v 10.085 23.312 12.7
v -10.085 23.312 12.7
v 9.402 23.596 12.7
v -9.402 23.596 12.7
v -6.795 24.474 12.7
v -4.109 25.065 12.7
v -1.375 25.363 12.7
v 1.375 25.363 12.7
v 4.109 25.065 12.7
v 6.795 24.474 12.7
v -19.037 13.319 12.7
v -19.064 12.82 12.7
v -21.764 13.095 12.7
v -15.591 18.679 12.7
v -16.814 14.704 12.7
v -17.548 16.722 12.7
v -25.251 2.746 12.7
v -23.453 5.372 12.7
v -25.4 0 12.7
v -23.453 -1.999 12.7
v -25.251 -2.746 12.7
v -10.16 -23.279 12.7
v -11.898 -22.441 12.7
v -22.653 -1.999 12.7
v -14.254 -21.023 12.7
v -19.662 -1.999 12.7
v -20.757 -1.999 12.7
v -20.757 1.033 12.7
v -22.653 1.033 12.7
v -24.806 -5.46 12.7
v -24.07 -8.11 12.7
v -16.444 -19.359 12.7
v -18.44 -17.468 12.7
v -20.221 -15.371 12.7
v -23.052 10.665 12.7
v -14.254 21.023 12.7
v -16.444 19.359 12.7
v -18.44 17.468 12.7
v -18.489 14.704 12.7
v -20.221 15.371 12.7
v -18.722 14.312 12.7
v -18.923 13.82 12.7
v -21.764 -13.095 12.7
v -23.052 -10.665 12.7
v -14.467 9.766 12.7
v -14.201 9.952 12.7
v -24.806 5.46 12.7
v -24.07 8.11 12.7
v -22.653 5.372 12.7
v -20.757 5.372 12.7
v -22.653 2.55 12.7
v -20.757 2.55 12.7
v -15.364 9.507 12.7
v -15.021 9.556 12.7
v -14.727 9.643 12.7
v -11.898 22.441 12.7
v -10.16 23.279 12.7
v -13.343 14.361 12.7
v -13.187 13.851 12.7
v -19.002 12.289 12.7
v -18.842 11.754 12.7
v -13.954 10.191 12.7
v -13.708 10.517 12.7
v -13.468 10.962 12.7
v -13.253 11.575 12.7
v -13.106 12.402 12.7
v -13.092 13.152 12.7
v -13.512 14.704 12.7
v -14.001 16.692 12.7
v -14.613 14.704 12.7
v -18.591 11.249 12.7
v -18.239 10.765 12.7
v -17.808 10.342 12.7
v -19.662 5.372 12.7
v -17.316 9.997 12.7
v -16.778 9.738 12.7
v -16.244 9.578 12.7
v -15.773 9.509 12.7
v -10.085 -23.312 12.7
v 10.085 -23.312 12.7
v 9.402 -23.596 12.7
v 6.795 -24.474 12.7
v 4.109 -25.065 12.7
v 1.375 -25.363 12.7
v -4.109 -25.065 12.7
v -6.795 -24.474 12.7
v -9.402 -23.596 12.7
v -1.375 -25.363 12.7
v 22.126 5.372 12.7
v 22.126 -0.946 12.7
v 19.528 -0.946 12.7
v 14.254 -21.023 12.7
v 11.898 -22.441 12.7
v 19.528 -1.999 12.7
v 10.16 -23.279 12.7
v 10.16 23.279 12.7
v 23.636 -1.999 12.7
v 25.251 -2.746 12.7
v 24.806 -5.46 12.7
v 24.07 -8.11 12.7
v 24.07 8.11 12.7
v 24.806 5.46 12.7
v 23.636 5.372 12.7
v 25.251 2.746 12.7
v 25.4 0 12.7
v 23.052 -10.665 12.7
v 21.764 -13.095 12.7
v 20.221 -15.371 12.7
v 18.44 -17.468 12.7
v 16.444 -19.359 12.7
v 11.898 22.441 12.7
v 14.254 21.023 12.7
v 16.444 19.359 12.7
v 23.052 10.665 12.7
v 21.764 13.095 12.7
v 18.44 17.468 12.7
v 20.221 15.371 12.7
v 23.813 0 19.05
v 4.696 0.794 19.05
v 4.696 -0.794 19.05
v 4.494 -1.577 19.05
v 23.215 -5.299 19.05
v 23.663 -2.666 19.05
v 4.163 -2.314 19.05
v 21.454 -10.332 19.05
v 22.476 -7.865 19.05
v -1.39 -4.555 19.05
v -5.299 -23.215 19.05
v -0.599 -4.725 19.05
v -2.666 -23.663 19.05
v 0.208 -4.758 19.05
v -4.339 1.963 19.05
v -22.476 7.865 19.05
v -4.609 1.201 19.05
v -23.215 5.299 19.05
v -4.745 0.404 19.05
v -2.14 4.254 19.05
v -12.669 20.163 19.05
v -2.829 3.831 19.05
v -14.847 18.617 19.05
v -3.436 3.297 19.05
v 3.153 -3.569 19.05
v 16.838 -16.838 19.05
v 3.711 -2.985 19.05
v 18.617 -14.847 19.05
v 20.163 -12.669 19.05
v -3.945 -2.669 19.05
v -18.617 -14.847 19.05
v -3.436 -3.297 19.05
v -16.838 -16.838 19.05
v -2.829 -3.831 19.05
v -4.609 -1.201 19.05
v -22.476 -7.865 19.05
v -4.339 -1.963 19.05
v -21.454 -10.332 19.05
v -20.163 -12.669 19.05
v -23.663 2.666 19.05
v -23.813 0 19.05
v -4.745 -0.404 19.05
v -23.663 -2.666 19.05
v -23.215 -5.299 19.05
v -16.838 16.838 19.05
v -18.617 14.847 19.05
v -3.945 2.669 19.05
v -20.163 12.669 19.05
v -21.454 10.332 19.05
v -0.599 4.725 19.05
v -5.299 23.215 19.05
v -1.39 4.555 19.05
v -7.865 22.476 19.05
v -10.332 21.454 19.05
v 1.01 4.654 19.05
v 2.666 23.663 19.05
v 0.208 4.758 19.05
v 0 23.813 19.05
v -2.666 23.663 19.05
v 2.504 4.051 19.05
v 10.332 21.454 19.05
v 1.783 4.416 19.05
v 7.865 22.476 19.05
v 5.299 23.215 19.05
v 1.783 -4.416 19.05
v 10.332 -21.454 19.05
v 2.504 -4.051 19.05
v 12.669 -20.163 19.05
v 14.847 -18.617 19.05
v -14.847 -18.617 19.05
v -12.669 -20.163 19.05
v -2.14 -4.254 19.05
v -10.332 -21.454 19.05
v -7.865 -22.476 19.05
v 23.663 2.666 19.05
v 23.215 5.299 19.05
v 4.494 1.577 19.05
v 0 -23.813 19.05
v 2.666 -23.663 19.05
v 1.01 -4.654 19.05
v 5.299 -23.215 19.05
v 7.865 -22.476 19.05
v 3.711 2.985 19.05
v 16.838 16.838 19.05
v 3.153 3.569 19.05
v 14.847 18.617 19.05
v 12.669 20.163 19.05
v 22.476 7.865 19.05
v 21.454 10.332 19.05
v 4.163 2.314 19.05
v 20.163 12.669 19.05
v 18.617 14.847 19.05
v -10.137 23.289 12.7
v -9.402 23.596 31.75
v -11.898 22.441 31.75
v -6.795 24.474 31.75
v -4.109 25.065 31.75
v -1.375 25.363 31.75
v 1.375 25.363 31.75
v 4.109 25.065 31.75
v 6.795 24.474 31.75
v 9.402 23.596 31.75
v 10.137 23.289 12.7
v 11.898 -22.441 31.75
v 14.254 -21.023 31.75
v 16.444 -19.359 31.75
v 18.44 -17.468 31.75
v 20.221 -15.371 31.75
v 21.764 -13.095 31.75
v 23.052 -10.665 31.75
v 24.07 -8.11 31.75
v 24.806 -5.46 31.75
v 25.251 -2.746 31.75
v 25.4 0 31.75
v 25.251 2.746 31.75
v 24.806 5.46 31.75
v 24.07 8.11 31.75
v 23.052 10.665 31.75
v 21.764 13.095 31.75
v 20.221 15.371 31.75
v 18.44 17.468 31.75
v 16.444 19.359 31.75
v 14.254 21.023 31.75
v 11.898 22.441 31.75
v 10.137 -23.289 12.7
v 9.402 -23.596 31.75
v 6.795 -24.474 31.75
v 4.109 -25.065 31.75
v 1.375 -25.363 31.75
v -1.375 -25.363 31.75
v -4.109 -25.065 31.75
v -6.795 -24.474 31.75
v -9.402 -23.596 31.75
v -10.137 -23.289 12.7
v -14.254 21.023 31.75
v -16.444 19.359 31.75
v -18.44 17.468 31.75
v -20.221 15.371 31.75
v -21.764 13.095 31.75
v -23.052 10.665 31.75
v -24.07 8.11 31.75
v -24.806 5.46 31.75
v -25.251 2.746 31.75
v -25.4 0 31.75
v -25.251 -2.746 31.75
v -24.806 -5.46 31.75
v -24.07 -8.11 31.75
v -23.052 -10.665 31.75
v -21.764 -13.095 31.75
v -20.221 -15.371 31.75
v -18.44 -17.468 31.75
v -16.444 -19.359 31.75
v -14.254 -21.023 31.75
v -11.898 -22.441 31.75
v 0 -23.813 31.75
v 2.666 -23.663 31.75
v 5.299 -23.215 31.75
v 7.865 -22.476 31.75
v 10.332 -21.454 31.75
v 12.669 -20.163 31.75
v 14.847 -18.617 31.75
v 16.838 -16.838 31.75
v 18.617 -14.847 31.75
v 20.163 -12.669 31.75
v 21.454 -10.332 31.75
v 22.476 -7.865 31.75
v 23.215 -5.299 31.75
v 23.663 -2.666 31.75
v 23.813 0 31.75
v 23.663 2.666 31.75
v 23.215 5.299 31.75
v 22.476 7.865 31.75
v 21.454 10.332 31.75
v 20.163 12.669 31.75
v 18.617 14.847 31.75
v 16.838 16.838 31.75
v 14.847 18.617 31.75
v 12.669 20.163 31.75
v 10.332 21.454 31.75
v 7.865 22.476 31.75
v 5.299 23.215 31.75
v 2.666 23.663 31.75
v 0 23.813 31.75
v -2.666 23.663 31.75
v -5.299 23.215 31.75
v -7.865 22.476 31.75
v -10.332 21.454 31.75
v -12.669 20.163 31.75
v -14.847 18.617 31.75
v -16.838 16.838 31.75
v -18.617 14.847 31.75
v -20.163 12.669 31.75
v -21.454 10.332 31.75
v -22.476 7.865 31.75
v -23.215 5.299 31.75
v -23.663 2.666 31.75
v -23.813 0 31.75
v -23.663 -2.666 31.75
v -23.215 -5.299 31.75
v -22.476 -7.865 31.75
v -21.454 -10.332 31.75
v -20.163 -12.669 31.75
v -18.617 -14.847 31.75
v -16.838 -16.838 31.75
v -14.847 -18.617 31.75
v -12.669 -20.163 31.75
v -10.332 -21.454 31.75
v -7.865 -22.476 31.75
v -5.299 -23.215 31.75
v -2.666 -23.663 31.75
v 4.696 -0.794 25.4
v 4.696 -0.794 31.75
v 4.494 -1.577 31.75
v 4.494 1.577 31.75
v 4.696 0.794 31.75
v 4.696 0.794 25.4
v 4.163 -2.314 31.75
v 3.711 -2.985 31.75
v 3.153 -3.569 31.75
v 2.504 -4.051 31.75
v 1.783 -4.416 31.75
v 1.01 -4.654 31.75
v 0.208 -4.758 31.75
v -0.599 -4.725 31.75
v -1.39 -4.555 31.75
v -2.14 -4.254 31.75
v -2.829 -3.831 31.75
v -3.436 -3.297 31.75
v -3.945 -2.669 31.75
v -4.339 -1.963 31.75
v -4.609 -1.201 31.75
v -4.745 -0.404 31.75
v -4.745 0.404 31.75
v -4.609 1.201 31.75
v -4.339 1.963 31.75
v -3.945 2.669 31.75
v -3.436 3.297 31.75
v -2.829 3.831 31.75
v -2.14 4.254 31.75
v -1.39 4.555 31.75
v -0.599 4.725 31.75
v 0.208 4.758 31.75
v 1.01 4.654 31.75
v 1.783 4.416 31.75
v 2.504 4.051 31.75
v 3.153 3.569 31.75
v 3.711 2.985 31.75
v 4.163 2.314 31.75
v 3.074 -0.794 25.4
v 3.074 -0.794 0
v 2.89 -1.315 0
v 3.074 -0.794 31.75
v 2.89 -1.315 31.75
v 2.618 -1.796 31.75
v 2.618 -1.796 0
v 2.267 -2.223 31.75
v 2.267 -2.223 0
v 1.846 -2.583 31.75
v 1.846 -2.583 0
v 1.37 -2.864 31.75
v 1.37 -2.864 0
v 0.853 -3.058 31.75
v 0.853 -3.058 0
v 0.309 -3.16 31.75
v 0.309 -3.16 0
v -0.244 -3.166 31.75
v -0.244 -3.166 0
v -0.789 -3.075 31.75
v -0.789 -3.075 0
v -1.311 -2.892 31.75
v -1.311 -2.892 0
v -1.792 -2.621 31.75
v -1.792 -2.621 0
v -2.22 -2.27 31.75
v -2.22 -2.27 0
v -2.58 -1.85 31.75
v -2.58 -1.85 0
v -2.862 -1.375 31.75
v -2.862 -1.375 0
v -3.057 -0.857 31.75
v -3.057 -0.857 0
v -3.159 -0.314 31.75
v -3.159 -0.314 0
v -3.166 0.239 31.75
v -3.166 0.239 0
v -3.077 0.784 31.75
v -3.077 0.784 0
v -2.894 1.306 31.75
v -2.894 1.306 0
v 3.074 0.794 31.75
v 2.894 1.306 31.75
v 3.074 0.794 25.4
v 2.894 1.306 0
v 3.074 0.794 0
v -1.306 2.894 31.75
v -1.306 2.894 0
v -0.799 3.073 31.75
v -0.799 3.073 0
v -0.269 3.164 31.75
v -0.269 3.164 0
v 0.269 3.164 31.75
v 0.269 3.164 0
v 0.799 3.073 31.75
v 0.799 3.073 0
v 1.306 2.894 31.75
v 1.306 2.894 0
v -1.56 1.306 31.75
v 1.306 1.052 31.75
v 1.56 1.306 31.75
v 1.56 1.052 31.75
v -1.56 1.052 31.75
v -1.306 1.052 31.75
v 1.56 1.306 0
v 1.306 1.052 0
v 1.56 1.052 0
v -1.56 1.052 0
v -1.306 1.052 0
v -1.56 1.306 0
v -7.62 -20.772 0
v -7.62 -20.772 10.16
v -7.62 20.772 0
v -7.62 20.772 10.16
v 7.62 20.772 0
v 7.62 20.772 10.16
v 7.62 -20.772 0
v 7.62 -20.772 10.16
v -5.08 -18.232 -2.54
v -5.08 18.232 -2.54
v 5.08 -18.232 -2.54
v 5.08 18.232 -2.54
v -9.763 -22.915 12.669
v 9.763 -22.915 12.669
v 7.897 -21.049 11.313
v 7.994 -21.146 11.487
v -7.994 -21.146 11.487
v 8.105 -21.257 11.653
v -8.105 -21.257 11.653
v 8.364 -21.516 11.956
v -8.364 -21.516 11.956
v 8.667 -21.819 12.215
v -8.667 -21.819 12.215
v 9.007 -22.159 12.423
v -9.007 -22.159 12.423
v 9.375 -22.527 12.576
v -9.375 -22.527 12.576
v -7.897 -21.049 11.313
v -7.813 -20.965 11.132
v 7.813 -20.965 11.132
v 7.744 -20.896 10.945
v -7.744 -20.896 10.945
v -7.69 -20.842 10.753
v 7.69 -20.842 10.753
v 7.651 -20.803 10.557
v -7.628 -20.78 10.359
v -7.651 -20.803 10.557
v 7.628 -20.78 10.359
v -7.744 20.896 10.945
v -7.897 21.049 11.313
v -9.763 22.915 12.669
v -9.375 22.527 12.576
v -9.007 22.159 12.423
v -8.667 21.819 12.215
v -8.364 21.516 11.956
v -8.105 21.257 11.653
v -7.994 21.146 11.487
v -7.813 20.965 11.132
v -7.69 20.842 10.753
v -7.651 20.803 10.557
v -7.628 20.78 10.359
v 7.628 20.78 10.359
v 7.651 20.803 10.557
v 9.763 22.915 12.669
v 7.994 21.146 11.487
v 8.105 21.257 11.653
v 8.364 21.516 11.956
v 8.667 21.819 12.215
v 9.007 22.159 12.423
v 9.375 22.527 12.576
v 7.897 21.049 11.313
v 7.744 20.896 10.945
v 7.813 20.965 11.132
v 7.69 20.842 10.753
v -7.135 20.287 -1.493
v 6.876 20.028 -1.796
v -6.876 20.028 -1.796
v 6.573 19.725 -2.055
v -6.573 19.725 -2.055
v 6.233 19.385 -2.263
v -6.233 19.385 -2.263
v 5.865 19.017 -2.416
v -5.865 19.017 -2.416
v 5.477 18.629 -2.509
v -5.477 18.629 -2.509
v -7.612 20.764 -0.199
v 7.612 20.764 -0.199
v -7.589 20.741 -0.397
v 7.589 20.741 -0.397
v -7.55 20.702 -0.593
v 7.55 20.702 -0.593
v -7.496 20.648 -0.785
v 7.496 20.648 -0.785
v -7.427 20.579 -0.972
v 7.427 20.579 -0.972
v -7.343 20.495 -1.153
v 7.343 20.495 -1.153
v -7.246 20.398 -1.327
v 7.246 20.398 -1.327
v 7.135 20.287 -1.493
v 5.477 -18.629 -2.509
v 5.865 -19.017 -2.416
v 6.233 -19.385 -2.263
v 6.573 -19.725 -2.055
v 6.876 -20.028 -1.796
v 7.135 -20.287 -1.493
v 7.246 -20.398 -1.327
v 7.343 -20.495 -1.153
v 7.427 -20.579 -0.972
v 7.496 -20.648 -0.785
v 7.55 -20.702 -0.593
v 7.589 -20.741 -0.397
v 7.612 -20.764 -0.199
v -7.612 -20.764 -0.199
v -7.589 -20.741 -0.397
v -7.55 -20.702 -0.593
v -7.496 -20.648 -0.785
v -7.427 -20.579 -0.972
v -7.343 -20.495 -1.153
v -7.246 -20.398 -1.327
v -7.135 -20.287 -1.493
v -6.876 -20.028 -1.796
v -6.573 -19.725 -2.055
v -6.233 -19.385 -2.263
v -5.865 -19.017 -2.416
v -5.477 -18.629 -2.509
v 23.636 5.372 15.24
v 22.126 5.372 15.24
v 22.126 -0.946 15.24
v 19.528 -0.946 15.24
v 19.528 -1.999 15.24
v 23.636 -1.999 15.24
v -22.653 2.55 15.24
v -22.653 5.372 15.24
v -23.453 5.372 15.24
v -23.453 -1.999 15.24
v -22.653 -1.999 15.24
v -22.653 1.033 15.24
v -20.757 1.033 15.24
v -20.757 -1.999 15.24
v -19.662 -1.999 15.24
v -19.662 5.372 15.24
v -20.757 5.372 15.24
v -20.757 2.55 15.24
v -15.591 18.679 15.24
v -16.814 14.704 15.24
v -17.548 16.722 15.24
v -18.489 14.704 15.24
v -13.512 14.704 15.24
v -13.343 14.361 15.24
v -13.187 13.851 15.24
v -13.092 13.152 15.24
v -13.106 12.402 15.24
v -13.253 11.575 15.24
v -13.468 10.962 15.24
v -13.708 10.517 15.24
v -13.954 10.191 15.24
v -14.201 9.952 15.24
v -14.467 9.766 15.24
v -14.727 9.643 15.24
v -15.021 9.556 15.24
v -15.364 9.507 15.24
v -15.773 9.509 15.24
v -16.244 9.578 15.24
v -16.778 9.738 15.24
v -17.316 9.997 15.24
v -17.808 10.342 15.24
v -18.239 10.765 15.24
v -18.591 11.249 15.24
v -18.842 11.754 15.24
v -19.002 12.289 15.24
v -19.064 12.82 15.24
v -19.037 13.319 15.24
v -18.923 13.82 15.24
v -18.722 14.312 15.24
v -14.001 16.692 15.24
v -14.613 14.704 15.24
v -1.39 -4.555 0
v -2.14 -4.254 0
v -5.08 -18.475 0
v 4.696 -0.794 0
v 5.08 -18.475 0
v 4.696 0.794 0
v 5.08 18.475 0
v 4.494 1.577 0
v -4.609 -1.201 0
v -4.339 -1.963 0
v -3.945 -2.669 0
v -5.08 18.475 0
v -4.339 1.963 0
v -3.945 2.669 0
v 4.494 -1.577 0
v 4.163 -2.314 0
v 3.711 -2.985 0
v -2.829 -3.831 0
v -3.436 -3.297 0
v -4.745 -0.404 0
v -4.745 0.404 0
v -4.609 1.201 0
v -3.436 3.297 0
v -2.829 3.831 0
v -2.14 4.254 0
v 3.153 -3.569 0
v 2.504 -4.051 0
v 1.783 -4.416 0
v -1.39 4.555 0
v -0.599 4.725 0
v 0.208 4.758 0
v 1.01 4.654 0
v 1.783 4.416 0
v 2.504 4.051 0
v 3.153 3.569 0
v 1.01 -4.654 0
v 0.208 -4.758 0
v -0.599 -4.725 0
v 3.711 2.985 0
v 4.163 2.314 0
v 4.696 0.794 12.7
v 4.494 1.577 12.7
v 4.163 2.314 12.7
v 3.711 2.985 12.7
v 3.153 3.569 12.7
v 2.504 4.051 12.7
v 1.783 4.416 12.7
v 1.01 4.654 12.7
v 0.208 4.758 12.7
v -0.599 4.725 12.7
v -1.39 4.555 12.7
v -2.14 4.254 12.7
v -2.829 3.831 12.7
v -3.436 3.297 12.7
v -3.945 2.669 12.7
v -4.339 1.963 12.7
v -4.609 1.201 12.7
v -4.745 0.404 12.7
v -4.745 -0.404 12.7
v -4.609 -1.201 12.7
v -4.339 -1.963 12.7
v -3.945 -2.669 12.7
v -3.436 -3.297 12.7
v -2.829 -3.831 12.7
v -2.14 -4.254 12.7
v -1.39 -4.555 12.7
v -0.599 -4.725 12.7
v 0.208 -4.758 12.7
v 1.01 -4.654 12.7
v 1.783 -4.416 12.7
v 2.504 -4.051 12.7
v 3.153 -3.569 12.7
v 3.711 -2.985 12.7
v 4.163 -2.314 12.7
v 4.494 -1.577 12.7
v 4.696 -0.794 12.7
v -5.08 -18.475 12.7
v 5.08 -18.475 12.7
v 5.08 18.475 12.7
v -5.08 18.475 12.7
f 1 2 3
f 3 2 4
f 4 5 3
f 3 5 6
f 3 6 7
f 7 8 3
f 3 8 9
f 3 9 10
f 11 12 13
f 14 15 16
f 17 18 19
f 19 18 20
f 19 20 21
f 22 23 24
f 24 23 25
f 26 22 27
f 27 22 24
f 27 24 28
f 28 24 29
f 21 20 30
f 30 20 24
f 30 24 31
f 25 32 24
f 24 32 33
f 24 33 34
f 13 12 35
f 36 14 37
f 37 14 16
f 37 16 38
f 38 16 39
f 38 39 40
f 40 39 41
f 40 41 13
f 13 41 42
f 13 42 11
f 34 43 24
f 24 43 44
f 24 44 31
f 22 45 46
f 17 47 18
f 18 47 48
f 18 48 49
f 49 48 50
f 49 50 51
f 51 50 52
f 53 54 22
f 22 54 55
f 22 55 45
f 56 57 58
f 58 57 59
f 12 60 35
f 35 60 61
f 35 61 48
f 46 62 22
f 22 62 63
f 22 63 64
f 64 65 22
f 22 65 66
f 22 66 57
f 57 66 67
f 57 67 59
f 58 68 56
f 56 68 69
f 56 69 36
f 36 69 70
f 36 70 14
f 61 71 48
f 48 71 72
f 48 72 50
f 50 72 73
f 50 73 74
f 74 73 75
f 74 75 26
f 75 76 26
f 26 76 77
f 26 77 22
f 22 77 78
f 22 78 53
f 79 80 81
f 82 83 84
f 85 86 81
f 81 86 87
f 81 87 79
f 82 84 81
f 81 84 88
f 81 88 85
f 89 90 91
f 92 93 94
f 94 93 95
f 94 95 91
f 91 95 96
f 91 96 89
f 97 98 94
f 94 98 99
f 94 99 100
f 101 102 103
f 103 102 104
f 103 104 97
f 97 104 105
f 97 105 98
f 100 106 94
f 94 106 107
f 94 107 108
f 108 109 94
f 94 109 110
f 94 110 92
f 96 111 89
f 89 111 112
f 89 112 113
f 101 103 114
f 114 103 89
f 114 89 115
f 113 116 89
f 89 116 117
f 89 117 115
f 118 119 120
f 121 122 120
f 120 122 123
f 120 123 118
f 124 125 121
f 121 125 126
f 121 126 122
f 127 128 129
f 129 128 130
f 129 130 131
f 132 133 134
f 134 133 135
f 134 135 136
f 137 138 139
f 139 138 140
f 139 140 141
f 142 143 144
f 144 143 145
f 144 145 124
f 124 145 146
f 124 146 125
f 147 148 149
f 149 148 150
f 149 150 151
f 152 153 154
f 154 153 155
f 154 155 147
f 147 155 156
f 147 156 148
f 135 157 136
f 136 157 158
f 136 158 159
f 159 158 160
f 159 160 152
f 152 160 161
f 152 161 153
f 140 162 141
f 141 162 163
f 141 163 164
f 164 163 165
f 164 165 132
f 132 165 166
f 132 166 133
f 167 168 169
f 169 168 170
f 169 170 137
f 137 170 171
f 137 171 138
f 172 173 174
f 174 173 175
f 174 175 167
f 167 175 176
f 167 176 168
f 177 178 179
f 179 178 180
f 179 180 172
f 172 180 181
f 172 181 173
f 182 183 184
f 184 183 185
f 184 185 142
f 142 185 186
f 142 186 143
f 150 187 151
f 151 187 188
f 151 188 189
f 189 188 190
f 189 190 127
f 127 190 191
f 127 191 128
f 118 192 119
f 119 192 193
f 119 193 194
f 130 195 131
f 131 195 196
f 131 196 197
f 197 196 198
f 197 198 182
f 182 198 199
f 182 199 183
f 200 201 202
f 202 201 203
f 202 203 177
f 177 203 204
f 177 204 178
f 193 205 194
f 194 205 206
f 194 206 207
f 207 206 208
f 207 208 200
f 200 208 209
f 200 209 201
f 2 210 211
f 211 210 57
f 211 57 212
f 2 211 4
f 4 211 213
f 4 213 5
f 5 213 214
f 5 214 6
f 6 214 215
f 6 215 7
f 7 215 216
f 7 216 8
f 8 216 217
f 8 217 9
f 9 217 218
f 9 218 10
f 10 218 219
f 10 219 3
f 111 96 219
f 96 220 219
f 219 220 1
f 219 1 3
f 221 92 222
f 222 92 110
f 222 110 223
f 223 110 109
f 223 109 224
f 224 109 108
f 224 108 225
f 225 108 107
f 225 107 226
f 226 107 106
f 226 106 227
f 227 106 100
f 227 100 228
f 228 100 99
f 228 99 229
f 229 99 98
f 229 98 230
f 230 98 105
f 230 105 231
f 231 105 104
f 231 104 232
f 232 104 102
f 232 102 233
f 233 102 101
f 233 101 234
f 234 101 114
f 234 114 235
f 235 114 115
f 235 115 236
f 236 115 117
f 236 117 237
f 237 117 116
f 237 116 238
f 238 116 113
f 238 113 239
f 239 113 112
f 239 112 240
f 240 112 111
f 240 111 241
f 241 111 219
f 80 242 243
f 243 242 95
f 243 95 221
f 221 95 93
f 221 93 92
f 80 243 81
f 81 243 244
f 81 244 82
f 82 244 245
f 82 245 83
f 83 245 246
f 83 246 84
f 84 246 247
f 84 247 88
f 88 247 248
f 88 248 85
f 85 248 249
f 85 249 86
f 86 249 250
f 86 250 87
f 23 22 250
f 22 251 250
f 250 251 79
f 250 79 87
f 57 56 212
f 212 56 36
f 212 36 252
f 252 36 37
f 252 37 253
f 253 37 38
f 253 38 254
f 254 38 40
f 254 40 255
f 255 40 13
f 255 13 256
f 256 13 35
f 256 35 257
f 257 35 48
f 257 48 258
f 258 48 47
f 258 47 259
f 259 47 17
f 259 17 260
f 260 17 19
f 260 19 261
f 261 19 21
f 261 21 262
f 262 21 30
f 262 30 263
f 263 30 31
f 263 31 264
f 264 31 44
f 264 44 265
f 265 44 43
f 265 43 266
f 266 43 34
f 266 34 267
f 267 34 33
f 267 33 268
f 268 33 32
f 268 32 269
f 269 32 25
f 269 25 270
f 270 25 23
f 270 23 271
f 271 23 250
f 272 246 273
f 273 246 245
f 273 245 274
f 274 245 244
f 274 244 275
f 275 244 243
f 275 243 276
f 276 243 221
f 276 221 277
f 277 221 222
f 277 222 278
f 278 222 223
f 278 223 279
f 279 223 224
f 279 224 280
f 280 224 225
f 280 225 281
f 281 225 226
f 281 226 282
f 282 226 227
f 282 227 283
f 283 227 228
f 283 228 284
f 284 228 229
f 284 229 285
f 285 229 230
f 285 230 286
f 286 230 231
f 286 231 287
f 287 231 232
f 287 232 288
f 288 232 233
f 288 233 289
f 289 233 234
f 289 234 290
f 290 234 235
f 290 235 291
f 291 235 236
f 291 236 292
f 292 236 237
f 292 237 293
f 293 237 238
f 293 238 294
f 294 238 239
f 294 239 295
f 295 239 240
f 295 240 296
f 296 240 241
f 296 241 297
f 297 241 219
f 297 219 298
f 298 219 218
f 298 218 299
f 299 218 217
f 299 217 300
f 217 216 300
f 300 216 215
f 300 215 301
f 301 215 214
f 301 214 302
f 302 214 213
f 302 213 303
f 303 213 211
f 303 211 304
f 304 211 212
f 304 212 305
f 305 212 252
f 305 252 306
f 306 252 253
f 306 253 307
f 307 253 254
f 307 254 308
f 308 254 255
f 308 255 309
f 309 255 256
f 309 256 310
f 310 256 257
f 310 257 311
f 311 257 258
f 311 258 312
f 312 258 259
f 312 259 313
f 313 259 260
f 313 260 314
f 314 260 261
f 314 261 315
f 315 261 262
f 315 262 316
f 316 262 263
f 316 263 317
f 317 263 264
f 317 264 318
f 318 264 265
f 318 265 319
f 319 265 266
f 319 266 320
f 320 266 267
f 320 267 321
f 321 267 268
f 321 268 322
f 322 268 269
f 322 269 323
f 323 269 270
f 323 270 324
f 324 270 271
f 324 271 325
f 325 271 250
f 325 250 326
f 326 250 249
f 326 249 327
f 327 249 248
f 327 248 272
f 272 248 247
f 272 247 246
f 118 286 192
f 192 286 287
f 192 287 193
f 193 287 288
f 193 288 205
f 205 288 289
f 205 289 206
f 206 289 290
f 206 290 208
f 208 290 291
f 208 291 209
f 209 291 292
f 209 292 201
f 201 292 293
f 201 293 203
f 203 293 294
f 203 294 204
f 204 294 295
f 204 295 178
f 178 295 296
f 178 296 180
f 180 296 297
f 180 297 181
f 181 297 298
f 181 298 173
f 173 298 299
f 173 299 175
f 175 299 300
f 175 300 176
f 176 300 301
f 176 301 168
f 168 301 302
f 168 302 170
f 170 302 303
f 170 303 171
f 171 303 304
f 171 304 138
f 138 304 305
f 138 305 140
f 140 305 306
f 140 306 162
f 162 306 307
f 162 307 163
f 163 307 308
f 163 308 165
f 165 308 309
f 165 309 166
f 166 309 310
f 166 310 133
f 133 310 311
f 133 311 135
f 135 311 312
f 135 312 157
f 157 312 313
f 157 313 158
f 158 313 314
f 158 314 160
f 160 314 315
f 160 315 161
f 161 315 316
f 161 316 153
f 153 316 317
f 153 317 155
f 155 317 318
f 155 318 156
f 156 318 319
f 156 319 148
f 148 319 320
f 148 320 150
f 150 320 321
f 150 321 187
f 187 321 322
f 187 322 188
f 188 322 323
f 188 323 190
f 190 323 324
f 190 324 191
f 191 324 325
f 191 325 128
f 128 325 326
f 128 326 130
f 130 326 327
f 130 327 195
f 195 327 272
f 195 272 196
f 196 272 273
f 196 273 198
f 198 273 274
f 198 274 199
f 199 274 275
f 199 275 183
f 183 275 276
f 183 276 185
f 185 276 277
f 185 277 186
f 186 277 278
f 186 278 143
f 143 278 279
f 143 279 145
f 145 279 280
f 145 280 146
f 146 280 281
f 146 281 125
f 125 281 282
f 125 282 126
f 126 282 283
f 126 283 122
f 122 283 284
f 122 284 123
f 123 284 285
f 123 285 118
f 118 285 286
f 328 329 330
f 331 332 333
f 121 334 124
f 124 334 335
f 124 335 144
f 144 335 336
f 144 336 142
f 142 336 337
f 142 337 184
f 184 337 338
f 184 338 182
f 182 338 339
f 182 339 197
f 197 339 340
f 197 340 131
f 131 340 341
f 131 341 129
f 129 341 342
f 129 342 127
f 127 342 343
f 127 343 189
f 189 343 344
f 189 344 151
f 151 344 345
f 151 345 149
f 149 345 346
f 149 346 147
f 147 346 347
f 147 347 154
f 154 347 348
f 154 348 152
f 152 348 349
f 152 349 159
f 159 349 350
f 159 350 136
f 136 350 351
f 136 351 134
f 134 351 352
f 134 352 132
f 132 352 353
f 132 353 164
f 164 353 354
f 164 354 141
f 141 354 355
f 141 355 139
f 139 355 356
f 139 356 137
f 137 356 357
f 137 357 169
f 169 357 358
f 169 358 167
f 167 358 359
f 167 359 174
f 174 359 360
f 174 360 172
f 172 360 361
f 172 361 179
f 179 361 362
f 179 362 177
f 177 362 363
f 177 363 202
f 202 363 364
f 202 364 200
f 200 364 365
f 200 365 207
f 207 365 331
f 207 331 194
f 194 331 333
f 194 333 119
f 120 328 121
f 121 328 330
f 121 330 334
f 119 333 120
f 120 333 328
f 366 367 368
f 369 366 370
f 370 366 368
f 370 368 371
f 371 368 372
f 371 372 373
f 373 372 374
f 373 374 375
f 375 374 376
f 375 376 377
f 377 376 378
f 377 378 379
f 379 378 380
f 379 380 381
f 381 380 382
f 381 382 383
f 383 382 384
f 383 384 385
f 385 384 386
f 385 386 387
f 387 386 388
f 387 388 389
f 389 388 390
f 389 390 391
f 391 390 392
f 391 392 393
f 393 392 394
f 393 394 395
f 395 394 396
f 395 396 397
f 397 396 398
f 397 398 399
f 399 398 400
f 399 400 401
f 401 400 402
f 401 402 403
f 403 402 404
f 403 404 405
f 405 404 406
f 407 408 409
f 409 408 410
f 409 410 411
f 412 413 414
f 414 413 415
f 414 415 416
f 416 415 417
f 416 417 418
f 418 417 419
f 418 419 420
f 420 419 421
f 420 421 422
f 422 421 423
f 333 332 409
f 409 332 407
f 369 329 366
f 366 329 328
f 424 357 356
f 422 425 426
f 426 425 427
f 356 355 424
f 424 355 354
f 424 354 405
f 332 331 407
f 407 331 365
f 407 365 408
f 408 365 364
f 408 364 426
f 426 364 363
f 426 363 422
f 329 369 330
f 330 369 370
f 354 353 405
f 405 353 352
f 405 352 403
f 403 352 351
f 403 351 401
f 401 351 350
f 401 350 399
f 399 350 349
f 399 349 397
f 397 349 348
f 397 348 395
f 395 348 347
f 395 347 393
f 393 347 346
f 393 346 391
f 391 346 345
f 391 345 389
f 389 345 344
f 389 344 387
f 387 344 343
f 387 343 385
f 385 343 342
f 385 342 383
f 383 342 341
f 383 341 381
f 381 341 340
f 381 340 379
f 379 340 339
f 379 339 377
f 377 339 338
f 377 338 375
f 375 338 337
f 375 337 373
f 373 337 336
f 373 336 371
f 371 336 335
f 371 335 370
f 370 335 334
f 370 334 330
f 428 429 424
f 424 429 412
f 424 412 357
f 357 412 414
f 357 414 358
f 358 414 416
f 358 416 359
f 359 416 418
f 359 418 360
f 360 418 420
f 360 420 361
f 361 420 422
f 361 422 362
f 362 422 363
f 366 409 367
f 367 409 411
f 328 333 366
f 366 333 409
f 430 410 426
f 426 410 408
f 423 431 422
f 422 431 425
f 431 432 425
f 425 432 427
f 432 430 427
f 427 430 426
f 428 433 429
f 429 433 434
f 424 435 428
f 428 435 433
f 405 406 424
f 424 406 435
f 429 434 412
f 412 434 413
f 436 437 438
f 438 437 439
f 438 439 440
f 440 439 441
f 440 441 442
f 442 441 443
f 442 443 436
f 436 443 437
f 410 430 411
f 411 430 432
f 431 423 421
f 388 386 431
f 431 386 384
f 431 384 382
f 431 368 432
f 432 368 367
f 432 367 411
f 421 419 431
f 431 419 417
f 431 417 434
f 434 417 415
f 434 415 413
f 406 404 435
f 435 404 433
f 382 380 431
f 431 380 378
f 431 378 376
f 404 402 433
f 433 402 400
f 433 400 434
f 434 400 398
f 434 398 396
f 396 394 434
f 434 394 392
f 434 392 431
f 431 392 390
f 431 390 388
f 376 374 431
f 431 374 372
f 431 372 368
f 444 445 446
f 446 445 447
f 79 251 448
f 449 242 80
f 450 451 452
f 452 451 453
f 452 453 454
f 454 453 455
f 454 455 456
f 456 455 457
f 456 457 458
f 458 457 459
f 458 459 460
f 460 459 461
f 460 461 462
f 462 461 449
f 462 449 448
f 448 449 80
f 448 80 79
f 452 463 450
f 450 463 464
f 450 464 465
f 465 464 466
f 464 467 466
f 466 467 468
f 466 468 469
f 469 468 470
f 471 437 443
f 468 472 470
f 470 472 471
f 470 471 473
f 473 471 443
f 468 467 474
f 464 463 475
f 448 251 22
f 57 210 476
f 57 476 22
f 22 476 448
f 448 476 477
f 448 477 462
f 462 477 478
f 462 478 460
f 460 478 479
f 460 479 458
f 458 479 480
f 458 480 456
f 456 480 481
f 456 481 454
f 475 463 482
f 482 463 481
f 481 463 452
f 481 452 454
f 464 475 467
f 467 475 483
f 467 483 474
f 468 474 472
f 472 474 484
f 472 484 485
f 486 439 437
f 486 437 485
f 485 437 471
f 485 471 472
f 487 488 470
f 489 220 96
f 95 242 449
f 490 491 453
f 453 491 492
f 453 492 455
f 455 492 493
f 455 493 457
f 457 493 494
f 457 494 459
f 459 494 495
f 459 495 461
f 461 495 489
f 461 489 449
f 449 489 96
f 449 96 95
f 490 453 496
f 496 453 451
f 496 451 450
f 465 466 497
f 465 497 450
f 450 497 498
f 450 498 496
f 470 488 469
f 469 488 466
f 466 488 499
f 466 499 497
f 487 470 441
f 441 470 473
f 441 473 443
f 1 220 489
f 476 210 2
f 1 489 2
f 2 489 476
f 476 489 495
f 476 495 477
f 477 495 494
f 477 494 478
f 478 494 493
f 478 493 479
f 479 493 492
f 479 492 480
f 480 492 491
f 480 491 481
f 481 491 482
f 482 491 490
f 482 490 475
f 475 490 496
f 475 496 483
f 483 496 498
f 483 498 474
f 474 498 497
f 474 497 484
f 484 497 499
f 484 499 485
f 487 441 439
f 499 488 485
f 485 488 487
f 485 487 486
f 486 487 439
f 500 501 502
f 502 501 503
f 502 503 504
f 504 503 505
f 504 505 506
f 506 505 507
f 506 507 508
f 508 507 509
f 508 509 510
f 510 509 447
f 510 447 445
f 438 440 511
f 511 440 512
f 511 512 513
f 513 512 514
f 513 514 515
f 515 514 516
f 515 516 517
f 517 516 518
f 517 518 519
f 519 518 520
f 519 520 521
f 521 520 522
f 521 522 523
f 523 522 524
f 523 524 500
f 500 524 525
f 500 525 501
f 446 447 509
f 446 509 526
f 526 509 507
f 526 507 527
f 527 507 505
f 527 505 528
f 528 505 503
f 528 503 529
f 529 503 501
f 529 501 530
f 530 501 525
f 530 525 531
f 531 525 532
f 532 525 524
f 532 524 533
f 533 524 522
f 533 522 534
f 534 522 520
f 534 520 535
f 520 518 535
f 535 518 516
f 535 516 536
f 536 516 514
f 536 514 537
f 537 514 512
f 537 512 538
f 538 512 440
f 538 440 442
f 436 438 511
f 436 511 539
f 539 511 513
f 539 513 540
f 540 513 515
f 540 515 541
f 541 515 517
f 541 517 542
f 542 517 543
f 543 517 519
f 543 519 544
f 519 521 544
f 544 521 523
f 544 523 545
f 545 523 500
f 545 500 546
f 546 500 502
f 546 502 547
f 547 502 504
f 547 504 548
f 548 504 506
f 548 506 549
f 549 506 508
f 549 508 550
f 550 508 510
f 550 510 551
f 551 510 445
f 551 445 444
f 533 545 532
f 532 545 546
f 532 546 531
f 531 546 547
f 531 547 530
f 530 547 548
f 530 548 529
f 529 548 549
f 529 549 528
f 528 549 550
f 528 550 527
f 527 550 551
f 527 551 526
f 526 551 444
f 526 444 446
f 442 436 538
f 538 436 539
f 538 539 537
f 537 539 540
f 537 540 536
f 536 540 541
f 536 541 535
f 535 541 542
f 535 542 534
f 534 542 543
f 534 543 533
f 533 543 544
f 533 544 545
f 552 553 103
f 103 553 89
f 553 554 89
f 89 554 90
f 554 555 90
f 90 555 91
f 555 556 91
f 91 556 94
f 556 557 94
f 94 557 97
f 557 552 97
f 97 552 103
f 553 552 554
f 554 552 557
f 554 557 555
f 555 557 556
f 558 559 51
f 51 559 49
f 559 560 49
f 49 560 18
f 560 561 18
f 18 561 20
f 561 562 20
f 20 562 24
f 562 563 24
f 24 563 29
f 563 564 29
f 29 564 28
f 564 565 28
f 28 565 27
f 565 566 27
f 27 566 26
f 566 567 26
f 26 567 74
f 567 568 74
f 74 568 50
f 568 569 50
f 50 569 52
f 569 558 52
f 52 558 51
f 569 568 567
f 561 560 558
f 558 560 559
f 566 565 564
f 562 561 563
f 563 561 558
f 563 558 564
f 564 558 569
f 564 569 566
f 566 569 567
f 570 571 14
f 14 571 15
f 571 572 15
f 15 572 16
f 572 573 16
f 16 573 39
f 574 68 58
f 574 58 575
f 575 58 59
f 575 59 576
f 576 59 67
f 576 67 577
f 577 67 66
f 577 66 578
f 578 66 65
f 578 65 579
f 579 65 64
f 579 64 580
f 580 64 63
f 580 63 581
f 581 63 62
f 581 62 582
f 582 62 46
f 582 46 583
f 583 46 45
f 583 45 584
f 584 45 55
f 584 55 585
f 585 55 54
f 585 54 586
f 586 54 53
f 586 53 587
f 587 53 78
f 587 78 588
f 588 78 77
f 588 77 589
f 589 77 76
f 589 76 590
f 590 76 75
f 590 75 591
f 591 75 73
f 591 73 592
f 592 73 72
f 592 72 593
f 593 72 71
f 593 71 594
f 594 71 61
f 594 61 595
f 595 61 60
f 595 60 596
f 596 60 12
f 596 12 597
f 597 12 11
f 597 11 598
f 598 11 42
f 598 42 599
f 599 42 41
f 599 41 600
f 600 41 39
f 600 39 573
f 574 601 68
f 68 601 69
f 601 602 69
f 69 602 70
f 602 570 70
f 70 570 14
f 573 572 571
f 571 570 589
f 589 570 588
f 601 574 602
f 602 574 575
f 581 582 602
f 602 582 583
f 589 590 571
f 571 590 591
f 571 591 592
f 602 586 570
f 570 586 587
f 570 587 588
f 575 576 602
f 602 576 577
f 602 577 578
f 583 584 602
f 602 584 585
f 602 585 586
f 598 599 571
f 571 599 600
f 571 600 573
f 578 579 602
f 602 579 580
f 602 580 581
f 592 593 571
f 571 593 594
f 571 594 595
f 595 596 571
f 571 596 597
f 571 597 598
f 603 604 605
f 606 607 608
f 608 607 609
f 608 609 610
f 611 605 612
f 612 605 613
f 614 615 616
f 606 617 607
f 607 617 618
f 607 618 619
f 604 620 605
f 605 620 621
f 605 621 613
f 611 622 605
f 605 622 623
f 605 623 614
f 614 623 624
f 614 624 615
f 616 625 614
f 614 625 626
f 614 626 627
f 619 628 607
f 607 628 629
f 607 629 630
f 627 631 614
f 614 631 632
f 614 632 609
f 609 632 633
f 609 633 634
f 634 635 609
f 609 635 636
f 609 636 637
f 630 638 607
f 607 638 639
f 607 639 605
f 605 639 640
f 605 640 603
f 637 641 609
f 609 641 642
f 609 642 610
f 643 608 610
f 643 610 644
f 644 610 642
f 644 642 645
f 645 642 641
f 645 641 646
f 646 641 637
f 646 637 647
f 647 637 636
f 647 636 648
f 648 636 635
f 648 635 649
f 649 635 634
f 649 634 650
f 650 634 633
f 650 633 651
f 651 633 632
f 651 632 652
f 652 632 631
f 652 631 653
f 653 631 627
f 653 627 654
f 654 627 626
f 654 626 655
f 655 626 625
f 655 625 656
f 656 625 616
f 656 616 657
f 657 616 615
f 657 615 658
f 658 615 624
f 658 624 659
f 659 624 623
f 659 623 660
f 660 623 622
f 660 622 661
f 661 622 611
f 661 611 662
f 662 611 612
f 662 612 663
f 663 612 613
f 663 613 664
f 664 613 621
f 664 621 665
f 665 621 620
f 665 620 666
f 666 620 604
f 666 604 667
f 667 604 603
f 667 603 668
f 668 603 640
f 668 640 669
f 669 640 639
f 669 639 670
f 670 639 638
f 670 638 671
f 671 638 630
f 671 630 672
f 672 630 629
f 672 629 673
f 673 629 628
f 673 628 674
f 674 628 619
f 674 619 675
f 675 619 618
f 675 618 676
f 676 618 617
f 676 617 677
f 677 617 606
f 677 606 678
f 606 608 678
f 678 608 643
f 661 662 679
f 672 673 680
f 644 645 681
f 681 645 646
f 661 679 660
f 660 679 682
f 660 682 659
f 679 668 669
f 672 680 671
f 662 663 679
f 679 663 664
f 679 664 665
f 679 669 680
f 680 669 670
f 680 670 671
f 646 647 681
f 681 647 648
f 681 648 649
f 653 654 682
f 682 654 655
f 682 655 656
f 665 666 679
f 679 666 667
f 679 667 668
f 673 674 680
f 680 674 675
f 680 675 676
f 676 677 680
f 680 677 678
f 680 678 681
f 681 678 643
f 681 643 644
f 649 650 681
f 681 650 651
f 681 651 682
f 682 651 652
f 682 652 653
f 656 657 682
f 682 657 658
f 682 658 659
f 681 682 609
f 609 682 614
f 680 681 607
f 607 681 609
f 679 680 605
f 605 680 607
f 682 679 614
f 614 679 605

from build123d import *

# Parameters (mm, degrees)
BOSS_EXTRUDE1_DEPTH = 31.75
SKETCH4_R           = 25.4
SKETCH4_R_2         = 23.8125
BOSS_EXTRUDE3_DEPTH = 12.7
SKETCH5_W           = 1.621707797
SKETCH5_H           = 1.5875
BOSS_EXTRUDE4_DEPTH = 25.4
SKETCH6_W           = 0.254
SKETCH6_H           = 0.254
BOSS_EXTRUDE5_DEPTH = 31.75
SKETCH9_R           = 25.4
SKETCH9_R_2         = 4.593847271
BOSS_EXTRUDE6_DEPTH = 6.35
SKETCH10_W          = 15.24
SKETCH10_H          = 41.544062962
SKETCH10_W_2        = 10.16
SKETCH10_H_2        = 36.95031579
BOSS_EXTRUDE7_DEPTH = 12.7
SKETCH11_W          = 15.24
SKETCH11_H          = 41.544062962
BOSS_EXTRUDE8_DEPTH = 2.54
FILLET1_R           = 2.54
FILLET2_R           = 2.54
CUT_EXTRUDE1_DEPTH  = 2.54


with BuildPart() as part:
    # Sketch2 → Boss-Extrude1 (new body)
    with BuildSketch(Plane.XY):
        with BuildLine():
            ThreePointArc((3.074180531, 0.79375), (-3.175, 0), (3.074180531, -0.79375))
            Line((3.074180531, -0.79375), (4.695888328, -0.79375))
            ThreePointArc((4.695888328, -0.79375), (-4.7625, 0), (4.695888328, 0.79375))
            Line((4.695888328, 0.79375), (3.074180531, 0.79375))
        make_face()
    extrude(amount=BOSS_EXTRUDE1_DEPTH)

    # Sketch5 → Boss-Extrude4 (add)
    with BuildSketch(Plane.XY):
        with Locations((3.88503443, 0)):
            Rectangle(SKETCH5_W, SKETCH5_H)
    extrude(amount=BOSS_EXTRUDE4_DEPTH)

    # Sketch6 → Boss-Extrude5 (add)
    with BuildSketch(Plane.XY):
        with BuildLine():
            Line((-1.306315103, 2.893815103), (-1.306315103, 1.306315103))
            Line((-1.306315103, 1.306315103), (-1.306315103, 1.052315103))
            Line((-1.306315103, 1.052315103), (-1.560315103, 1.052315103))
            Line((-1.560315103, 1.052315103), (-1.560315103, 1.306315103))
            Line((-1.560315103, 1.306315103), (-2.893815103, 1.306315103))
            ThreePointArc((-2.893815103, 1.306315103), (-2.428847118, 2.428847118), (-1.306315103, 2.893815103))
        make_face()
        with BuildLine():
            Line((1.306315103, 1.306315103), (2.893815103, 1.306315103))
            ThreePointArc((2.893815103, 1.306315103), (2.428847118, 2.428847118), (1.306315103, 2.893815103))
            Line((1.306315103, 2.893815103), (1.306315103, 1.306315103))
        make_face()
        with Locations((1.433315103, 1.179315103)):
            Rectangle(SKETCH6_W, SKETCH6_H)
    extrude(amount=BOSS_EXTRUDE5_DEPTH)



with BuildPart() as body_2:
    # Sketch4 → Boss-Extrude3 (new body)
    with BuildSketch(Plane.XY.offset(31.75)):
        Circle(SKETCH4_R)
        Circle(SKETCH4_R_2, mode=Mode.SUBTRACT)
    extrude(amount=-BOSS_EXTRUDE3_DEPTH)


with BuildPart() as part_1:
    add(part.part)

    add(body_2.part)  # Boss-Extrude6 merges body 2
    # Sketch9 → Boss-Extrude6 (add)
    with BuildSketch(Plane(origin=(0, 0, 19.05), x_dir=(-1, 0, 0), z_dir=(0, 0, -1))):
        with Locations(Location((0, 0, 0), (0, 0, 180))):
            Circle(SKETCH9_R)
        Circle(SKETCH9_R_2, mode=Mode.SUBTRACT)
    extrude(amount=BOSS_EXTRUDE6_DEPTH)

    # Sketch10 → Boss-Extrude7 (add)
    with BuildSketch(Plane(origin=(0, 0, 12.7), x_dir=(-1, 0, 0), z_dir=(0, 0, -1))):
        Rectangle(SKETCH10_W, SKETCH10_H)
        Rectangle(SKETCH10_W_2, SKETCH10_H_2, mode=Mode.SUBTRACT)
    extrude(amount=BOSS_EXTRUDE7_DEPTH)

    # Sketch11 → Boss-Extrude8 (add)
    with BuildSketch(Plane(origin=(0, 0, 0), x_dir=(-1, 0, 0), z_dir=(0, 0, -1))):
        Rectangle(SKETCH11_W, SKETCH11_H)
    extrude(amount=BOSS_EXTRUDE8_DEPTH)

    # Fillet1
    # the kernel refuses this fillet: 2.54 mm, written as the material it adds along each edge
    with BuildSketch(Plane(origin=(-7.62, -20.772031481, 12.7), x_dir=(-1, 0, 0), z_dir=(0, 1, 0)), Plane(origin=(7.62, 20.772031481, 12.7), x_dir=(1, 0, 0), z_dir=(0, -1, 0))) as fillet1_piece_1:
        with BuildLine():
            CenterArc((FILLET1_R, -FILLET1_R), FILLET1_R, 90, 90)
            Line((0, -FILLET1_R), (0, 0))
            Line((0, 0), (FILLET1_R, 0))
        make_face()
    extrude(amount=41.544062961)
    with BuildSketch(Plane(origin=(-7.62, 20.772031481, 12.7), x_dir=(0, 1, 0), z_dir=(1, 0, 0)), Plane(origin=(7.62, -20.772031481, 12.7), x_dir=(0, -1, 0), z_dir=(-1, 0, 0))) as fillet1_piece_2:
        with BuildLine():
            CenterArc((FILLET1_R, -FILLET1_R), FILLET1_R, 90, 90)
            Line((0, -FILLET1_R), (0, 0))
            Line((0, 0), (FILLET1_R, 0))
        make_face()
    extrude(amount=15.24)
    with BuildSketch(Plane(origin=(7.62, -20.772031481, 12.7), x_dir=(0, -1, 0), z_dir=(-1, 0, 0))) as fillet1_piece_3a_section:
        with BuildLine():
            CenterArc((FILLET1_R, -FILLET1_R), FILLET1_R, 90, 90)
            Line((0, -FILLET1_R), (0, 0))
            Line((0, 0), (FILLET1_R, 0))
        make_face()
    fillet1_piece_3a = extrude(amount=21.59, mode=Mode.PRIVATE)
    fillet1_piece_3a = fillet1_piece_3a & Plane(origin=(0, 0, 12.091015905), x_dir=(1, 0, 0), z_dir=(0, 0, 1)) * Cylinder(25.4, 54, mode=Mode.PRIVATE)
    fillet1_piece_3a = split(fillet1_piece_3a, bisect_by=Plane(origin=(-7.62, -21.280779279, 12.091015905), z_dir=(-1, 0, 0)), keep=Keep.TOP, mode=Mode.PRIVATE)
    with BuildSketch(Plane(origin=(-7.62, -27.122031481, 12.7), x_dir=(-1, 0, 0), z_dir=(0, 1, 0))) as fillet1_piece_3b_section:
        with BuildLine():
            CenterArc((FILLET1_R, -FILLET1_R), FILLET1_R, 90, 90)
            Line((0, -FILLET1_R), (0, 0))
            Line((0, 0), (FILLET1_R, 0))
        make_face()
    fillet1_piece_3b = extrude(amount=47.894062961, mode=Mode.PRIVATE)
    fillet1_piece_3b = fillet1_piece_3b & Plane(origin=(0, 0, 12.105999198), x_dir=(1, 0, 0), z_dir=(0, 0, 1)) * Cylinder(25.4, 106, mode=Mode.PRIVATE)
    fillet1_piece_3b = split(fillet1_piece_3b, bisect_by=Plane(origin=(-8.162359675, -20.772031481, 12.105999198), z_dir=(0, -1, 0)), keep=Keep.TOP, mode=Mode.PRIVATE)
    fillet1_piece_3 = fillet1_piece_3a & fillet1_piece_3b
    add(fillet1_piece_3)
    with BuildSketch(Plane(origin=(-7.62, -20.772031481, 12.7), x_dir=(-1, 0, 0), z_dir=(0, 1, 0))) as fillet1_piece_4a_section:
        with BuildLine():
            CenterArc((FILLET1_R, -FILLET1_R), FILLET1_R, 90, 90)
            Line((0, -FILLET1_R), (0, 0))
            Line((0, 0), (FILLET1_R, 0))
        make_face()
    fillet1_piece_4a = extrude(amount=47.894062961, mode=Mode.PRIVATE)
    fillet1_piece_4a = fillet1_piece_4a & Plane(origin=(0, 0, 12.105997934), x_dir=(1, 0, 0), z_dir=(0, 0, 1)) * Cylinder(25.4, 106, mode=Mode.PRIVATE)
    fillet1_piece_4a = split(fillet1_piece_4a, bisect_by=Plane(origin=(-8.162364443, 20.772031481, 12.105997934), z_dir=(0, 1, 0)), keep=Keep.TOP, mode=Mode.PRIVATE)
    with BuildSketch(Plane(origin=(-13.97, 20.772031481, 12.7), x_dir=(0, 1, 0), z_dir=(1, 0, 0))) as fillet1_piece_4b_section:
        with BuildLine():
            CenterArc((FILLET1_R, -FILLET1_R), FILLET1_R, 90, 90)
            Line((0, -FILLET1_R), (0, 0))
            Line((0, 0), (FILLET1_R, 0))
        make_face()
    fillet1_piece_4b = extrude(amount=21.59, mode=Mode.PRIVATE)
    fillet1_piece_4b = fillet1_piece_4b & Plane(origin=(0, 0, 12.0910159), x_dir=(1, 0, 0), z_dir=(0, 0, 1)) * Cylinder(25.4, 54, mode=Mode.PRIVATE)
    fillet1_piece_4b = split(fillet1_piece_4b, bisect_by=Plane(origin=(-7.62, 21.28077831, 12.0910159), z_dir=(-1, 0, 0)), keep=Keep.TOP, mode=Mode.PRIVATE)
    fillet1_piece_4 = fillet1_piece_4a & fillet1_piece_4b
    add(fillet1_piece_4)
    with BuildSketch(Plane(origin=(-7.62, 20.772031481, 12.7), x_dir=(0, 1, 0), z_dir=(1, 0, 0))) as fillet1_piece_5a_section:
        with BuildLine():
            CenterArc((FILLET1_R, -FILLET1_R), FILLET1_R, 90, 90)
            Line((0, -FILLET1_R), (0, 0))
            Line((0, 0), (FILLET1_R, 0))
        make_face()
    fillet1_piece_5a = extrude(amount=21.59, mode=Mode.PRIVATE)
    fillet1_piece_5a = fillet1_piece_5a & Plane(origin=(0, 0, 12.091015905), x_dir=(1, 0, 0), z_dir=(0, 0, 1)) * Cylinder(25.4, 54, mode=Mode.PRIVATE)
    fillet1_piece_5a = split(fillet1_piece_5a, bisect_by=Plane(origin=(7.62, 21.280779279, 12.091015905), z_dir=(1, 0, 0)), keep=Keep.TOP, mode=Mode.PRIVATE)
    with BuildSketch(Plane(origin=(7.62, 27.122031481, 12.7), x_dir=(1, 0, 0), z_dir=(0, -1, 0))) as fillet1_piece_5b_section:
        with BuildLine():
            CenterArc((FILLET1_R, -FILLET1_R), FILLET1_R, 90, 90)
            Line((0, -FILLET1_R), (0, 0))
            Line((0, 0), (FILLET1_R, 0))
        make_face()
    fillet1_piece_5b = extrude(amount=47.894062961, mode=Mode.PRIVATE)
    fillet1_piece_5b = fillet1_piece_5b & Plane(origin=(0, 0, 12.105999198), x_dir=(1, 0, 0), z_dir=(0, 0, 1)) * Cylinder(25.4, 106, mode=Mode.PRIVATE)
    fillet1_piece_5b = split(fillet1_piece_5b, bisect_by=Plane(origin=(8.162359675, 20.772031481, 12.105999198), z_dir=(0, 1, 0)), keep=Keep.TOP, mode=Mode.PRIVATE)
    fillet1_piece_5 = fillet1_piece_5a & fillet1_piece_5b
    add(fillet1_piece_5)
    with BuildSketch(Plane(origin=(13.97, -20.772031481, 12.7), x_dir=(0, -1, 0), z_dir=(-1, 0, 0))) as fillet1_piece_6a_section:
        with BuildLine():
            CenterArc((FILLET1_R, -FILLET1_R), FILLET1_R, 90, 90)
            Line((0, -FILLET1_R), (0, 0))
            Line((0, 0), (FILLET1_R, 0))
        make_face()
    fillet1_piece_6a = extrude(amount=21.59, mode=Mode.PRIVATE)
    fillet1_piece_6a = fillet1_piece_6a & Plane(origin=(0, 0, 12.0910159), x_dir=(1, 0, 0), z_dir=(0, 0, 1)) * Cylinder(25.4, 54, mode=Mode.PRIVATE)
    fillet1_piece_6a = split(fillet1_piece_6a, bisect_by=Plane(origin=(7.62, -21.28077831, 12.0910159), z_dir=(1, 0, 0)), keep=Keep.TOP, mode=Mode.PRIVATE)
    with BuildSketch(Plane(origin=(7.62, 20.772031481, 12.7), x_dir=(1, 0, 0), z_dir=(0, -1, 0))) as fillet1_piece_6b_section:
        with BuildLine():
            CenterArc((FILLET1_R, -FILLET1_R), FILLET1_R, 90, 90)
            Line((0, -FILLET1_R), (0, 0))
            Line((0, 0), (FILLET1_R, 0))
        make_face()
    fillet1_piece_6b = extrude(amount=47.894062961, mode=Mode.PRIVATE)
    fillet1_piece_6b = fillet1_piece_6b & Plane(origin=(0, 0, 12.105997934), x_dir=(1, 0, 0), z_dir=(0, 0, 1)) * Cylinder(25.4, 106, mode=Mode.PRIVATE)
    fillet1_piece_6b = split(fillet1_piece_6b, bisect_by=Plane(origin=(8.162364443, -20.772031481, 12.105997934), z_dir=(0, -1, 0)), keep=Keep.TOP, mode=Mode.PRIVATE)
    fillet1_piece_6 = fillet1_piece_6a & fillet1_piece_6b
    add(fillet1_piece_6)

    # Fillet2
    fillet2_edges = [part_1.edges().sort_by_distance(p)[0] for p in [
        (-7.62, 0, -2.54),
        (0, 20.772031481, -2.54),
        (7.62, 0, -2.54),
        (0, -20.772031481, -2.54),
    ]]
    fillet(fillet2_edges, radius=FILLET2_R)

    # Sketch12 → Cut-Extrude1 (cut)
    with BuildSketch(Plane(origin=(0, 0, 12.7), x_dir=(-1, 0, 0), z_dir=(0, 0, -1))):
        with BuildLine():
            Line((16.813868884, 14.704492606), (17.547564981, 16.722156872))
            Line((17.547564981, 16.722156872), (18.489141639, 14.704492606))
            add(Edge.make_bspline(
                [(18.489141639, 14.704492606), (19.798776644, 12.786117496), (18.310846307, 9.647278033), (13.185757244, 9.226397866), (12.693603367, 13.337843102), (13.512236449, 14.704492606)],
                knots=[0, 0, 0, 0, 0.432949875, 0.596956743, 1, 1, 1, 1], degree=3))
            Line((13.512236449, 14.704492606), (14.00136718, 16.691586201))
            Line((14.00136718, 16.691586201), (14.612780594, 14.704492606))
            Line((14.612780594, 14.704492606), (15.591042056, 18.678679797))
            Line((15.591042056, 18.678679797), (16.813868884, 14.704492606))
        make_face()
        Polygon((22.65270588, 5.371871988), (23.452991012, 5.371871988), (23.452991012, -1.999175277), (22.65270588, -1.999175277), (22.65270588, 1.033484169), (20.757293726, 1.033484169), (20.757293726, -1.999175277), (19.662166704, -1.999175277), (19.662166704, 5.371871988), (20.757293726, 5.371871988), (20.757293726, 2.549813892), (22.65270588, 2.549813892), align=None)
        Polygon((-23.636155952, 5.371871988), (-23.636155952, -1.999175277), (-19.528236773, -1.999175277), (-19.528236773, -0.945591056), (-22.125891548, -0.945591056), (-22.125891548, 5.371871988), align=None)
    extrude(amount=-CUT_EXTRUDE1_DEPTH, mode=Mode.SUBTRACT)


solid = part_1.part
